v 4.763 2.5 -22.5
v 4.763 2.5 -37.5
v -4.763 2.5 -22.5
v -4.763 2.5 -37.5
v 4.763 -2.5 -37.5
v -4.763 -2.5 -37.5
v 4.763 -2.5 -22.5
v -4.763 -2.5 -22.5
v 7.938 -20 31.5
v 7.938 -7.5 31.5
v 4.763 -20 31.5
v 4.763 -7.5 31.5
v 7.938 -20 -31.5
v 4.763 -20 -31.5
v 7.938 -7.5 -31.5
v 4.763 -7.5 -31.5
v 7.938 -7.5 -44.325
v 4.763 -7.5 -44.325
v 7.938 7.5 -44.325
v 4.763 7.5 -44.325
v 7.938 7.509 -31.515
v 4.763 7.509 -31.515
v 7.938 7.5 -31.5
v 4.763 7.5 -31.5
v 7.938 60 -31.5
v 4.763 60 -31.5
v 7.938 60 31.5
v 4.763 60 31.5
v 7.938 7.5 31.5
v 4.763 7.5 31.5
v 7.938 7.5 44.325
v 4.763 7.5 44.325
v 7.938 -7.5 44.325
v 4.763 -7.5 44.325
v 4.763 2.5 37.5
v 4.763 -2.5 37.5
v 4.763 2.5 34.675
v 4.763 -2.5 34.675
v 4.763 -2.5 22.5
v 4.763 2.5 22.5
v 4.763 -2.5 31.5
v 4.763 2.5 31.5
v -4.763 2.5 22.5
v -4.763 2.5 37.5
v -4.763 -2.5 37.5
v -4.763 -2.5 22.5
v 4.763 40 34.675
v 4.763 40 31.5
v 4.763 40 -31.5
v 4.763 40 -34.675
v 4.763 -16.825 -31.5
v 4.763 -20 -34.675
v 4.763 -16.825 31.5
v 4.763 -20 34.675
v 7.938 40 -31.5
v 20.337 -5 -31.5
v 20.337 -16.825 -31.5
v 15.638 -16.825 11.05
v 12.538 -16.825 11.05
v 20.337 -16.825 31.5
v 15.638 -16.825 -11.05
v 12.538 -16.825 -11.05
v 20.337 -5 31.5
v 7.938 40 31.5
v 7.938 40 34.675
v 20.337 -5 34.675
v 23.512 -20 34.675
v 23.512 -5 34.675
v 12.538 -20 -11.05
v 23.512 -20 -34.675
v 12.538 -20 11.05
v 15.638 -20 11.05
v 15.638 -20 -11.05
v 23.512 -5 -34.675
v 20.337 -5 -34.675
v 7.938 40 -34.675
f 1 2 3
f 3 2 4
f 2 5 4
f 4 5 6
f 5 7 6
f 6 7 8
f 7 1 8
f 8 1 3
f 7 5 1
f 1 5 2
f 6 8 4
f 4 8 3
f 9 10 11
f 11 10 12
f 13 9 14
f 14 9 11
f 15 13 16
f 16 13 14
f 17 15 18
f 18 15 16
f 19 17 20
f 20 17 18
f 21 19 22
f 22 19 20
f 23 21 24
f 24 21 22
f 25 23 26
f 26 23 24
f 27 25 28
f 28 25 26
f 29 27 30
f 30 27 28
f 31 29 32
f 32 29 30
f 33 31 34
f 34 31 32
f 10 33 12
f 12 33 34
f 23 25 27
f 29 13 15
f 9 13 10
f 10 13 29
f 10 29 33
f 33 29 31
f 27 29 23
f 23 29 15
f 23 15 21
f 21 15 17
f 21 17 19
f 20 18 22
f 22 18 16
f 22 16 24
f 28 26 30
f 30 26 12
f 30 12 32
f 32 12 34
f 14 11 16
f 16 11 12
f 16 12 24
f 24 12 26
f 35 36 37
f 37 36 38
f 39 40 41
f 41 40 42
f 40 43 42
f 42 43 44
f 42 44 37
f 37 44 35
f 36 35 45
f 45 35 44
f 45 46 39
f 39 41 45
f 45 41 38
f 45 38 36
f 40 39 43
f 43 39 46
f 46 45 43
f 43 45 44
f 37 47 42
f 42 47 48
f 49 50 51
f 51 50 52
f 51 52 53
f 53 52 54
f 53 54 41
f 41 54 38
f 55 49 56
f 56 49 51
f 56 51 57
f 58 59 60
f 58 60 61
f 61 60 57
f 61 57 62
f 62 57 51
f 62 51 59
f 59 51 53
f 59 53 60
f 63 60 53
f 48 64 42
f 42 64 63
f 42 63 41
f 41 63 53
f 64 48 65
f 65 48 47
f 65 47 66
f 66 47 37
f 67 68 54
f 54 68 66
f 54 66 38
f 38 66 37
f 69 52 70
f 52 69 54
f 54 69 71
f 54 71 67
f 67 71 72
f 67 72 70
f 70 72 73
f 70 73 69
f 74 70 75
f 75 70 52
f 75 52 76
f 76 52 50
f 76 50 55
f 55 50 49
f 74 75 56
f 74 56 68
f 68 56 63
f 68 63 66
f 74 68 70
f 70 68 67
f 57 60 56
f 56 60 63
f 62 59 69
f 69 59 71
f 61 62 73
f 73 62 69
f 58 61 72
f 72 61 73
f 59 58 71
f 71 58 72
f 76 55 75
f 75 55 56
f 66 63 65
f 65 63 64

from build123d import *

# Parameters (mm, degrees)
SKETCH2_W           = 15
SKETCH2_H           = 5
BOSS_EXTRUDE1_DEPTH = 4.7625
BOSS_EXTRUDE3_DEPTH = 3.175
BOSS_EXTRUDE5_DEPTH = 15.575
SKETCH7_W           = 69.35
SKETCH7_H           = 15
BOSS_EXTRUDE6_DEPTH = 3.175
SKETCH8_W           = 3.1
SKETCH8_H           = 22.1
CUT_EXTRUDE1_DEPTH  = 3.175
CUT_EXTRUDE2_DEPTH  = 102.950172419


with BuildPart() as part:
    # Sketch2 → Boss-Extrude1 (new, symmetric)
    with BuildSketch(Plane(origin=(0, 0, 0), x_dir=(0, 0, -1), z_dir=(1, 0, 0))):
        with Locations((-30, 0)):
            Rectangle(SKETCH2_W, SKETCH2_H)
    extrude(amount=BOSS_EXTRUDE1_DEPTH, both=True)


with BuildPart() as body_2:
    # Mirror4: mirrored copy
    add(part.part.mirror(Plane.XY))


with BuildPart() as body_3:
    # Sketch4 → Boss-Extrude3 (new body)
    with BuildSketch(Plane(origin=(4.7625, 0, 0), x_dir=(0, 0, -1), z_dir=(1, 0, 0))):
        Polygon((31.515269753, 7.508745797), (44.325, 7.5), (44.325, -7.5), (31.5, -7.5), (31.5, -20), (-31.5, -20), (-31.5, -7.5), (-44.325, -7.5), (-44.325, 7.5), (-31.5, 7.5), (-31.5, 60), (31.5, 60), (31.5, 7.5), align=None)
    extrude(amount=BOSS_EXTRUDE3_DEPTH)


with BuildPart() as part_1:
    add(part.part)

    # Sketch6 → Boss-Extrude5 (add)
    with BuildSketch(Plane(origin=(4.7625, 0, 0), x_dir=(0, 0, -1), z_dir=(1, 0, 0))):
        Polygon((-31.5, 40), (-31.5, -16.825), (31.5, -16.825), (31.5, 40), (34.675, 40), (34.675, -20), (-34.675, -20), (-34.675, 40), align=None)
    extrude(amount=BOSS_EXTRUDE5_DEPTH)

    # Sketch7 → Boss-Extrude6 (add)
    with BuildSketch(Plane(origin=(20.3375, 0, 0), x_dir=(0, 0, -1), z_dir=(1, 0, 0))):
        with Locations((0, -12.5)):
            Rectangle(SKETCH7_W, SKETCH7_H)
    extrude(amount=BOSS_EXTRUDE6_DEPTH)

    # Sketch8 → Cut-Extrude1 (cut)
    with BuildSketch(Plane(origin=(0, -16.825, 0), x_dir=(1, 0, 0), z_dir=(0, 1, 0))):
        with Locations((14.0875, 0)):
            Rectangle(SKETCH8_W, SKETCH8_H)
    extrude(amount=-CUT_EXTRUDE1_DEPTH, mode=Mode.SUBTRACT)

    # Sketch10 → Cut-Extrude2 (cut, through all)
    with BuildSketch(Plane.XY.offset(34.675)):
        Polygon((7.9375, 40), (20.3375, -5), (20.3375, 40), align=None)
    extrude(amount=-CUT_EXTRUDE2_DEPTH, mode=Mode.SUBTRACT)


solid = Compound([body_2.part, body_3.part, part_1.part])
